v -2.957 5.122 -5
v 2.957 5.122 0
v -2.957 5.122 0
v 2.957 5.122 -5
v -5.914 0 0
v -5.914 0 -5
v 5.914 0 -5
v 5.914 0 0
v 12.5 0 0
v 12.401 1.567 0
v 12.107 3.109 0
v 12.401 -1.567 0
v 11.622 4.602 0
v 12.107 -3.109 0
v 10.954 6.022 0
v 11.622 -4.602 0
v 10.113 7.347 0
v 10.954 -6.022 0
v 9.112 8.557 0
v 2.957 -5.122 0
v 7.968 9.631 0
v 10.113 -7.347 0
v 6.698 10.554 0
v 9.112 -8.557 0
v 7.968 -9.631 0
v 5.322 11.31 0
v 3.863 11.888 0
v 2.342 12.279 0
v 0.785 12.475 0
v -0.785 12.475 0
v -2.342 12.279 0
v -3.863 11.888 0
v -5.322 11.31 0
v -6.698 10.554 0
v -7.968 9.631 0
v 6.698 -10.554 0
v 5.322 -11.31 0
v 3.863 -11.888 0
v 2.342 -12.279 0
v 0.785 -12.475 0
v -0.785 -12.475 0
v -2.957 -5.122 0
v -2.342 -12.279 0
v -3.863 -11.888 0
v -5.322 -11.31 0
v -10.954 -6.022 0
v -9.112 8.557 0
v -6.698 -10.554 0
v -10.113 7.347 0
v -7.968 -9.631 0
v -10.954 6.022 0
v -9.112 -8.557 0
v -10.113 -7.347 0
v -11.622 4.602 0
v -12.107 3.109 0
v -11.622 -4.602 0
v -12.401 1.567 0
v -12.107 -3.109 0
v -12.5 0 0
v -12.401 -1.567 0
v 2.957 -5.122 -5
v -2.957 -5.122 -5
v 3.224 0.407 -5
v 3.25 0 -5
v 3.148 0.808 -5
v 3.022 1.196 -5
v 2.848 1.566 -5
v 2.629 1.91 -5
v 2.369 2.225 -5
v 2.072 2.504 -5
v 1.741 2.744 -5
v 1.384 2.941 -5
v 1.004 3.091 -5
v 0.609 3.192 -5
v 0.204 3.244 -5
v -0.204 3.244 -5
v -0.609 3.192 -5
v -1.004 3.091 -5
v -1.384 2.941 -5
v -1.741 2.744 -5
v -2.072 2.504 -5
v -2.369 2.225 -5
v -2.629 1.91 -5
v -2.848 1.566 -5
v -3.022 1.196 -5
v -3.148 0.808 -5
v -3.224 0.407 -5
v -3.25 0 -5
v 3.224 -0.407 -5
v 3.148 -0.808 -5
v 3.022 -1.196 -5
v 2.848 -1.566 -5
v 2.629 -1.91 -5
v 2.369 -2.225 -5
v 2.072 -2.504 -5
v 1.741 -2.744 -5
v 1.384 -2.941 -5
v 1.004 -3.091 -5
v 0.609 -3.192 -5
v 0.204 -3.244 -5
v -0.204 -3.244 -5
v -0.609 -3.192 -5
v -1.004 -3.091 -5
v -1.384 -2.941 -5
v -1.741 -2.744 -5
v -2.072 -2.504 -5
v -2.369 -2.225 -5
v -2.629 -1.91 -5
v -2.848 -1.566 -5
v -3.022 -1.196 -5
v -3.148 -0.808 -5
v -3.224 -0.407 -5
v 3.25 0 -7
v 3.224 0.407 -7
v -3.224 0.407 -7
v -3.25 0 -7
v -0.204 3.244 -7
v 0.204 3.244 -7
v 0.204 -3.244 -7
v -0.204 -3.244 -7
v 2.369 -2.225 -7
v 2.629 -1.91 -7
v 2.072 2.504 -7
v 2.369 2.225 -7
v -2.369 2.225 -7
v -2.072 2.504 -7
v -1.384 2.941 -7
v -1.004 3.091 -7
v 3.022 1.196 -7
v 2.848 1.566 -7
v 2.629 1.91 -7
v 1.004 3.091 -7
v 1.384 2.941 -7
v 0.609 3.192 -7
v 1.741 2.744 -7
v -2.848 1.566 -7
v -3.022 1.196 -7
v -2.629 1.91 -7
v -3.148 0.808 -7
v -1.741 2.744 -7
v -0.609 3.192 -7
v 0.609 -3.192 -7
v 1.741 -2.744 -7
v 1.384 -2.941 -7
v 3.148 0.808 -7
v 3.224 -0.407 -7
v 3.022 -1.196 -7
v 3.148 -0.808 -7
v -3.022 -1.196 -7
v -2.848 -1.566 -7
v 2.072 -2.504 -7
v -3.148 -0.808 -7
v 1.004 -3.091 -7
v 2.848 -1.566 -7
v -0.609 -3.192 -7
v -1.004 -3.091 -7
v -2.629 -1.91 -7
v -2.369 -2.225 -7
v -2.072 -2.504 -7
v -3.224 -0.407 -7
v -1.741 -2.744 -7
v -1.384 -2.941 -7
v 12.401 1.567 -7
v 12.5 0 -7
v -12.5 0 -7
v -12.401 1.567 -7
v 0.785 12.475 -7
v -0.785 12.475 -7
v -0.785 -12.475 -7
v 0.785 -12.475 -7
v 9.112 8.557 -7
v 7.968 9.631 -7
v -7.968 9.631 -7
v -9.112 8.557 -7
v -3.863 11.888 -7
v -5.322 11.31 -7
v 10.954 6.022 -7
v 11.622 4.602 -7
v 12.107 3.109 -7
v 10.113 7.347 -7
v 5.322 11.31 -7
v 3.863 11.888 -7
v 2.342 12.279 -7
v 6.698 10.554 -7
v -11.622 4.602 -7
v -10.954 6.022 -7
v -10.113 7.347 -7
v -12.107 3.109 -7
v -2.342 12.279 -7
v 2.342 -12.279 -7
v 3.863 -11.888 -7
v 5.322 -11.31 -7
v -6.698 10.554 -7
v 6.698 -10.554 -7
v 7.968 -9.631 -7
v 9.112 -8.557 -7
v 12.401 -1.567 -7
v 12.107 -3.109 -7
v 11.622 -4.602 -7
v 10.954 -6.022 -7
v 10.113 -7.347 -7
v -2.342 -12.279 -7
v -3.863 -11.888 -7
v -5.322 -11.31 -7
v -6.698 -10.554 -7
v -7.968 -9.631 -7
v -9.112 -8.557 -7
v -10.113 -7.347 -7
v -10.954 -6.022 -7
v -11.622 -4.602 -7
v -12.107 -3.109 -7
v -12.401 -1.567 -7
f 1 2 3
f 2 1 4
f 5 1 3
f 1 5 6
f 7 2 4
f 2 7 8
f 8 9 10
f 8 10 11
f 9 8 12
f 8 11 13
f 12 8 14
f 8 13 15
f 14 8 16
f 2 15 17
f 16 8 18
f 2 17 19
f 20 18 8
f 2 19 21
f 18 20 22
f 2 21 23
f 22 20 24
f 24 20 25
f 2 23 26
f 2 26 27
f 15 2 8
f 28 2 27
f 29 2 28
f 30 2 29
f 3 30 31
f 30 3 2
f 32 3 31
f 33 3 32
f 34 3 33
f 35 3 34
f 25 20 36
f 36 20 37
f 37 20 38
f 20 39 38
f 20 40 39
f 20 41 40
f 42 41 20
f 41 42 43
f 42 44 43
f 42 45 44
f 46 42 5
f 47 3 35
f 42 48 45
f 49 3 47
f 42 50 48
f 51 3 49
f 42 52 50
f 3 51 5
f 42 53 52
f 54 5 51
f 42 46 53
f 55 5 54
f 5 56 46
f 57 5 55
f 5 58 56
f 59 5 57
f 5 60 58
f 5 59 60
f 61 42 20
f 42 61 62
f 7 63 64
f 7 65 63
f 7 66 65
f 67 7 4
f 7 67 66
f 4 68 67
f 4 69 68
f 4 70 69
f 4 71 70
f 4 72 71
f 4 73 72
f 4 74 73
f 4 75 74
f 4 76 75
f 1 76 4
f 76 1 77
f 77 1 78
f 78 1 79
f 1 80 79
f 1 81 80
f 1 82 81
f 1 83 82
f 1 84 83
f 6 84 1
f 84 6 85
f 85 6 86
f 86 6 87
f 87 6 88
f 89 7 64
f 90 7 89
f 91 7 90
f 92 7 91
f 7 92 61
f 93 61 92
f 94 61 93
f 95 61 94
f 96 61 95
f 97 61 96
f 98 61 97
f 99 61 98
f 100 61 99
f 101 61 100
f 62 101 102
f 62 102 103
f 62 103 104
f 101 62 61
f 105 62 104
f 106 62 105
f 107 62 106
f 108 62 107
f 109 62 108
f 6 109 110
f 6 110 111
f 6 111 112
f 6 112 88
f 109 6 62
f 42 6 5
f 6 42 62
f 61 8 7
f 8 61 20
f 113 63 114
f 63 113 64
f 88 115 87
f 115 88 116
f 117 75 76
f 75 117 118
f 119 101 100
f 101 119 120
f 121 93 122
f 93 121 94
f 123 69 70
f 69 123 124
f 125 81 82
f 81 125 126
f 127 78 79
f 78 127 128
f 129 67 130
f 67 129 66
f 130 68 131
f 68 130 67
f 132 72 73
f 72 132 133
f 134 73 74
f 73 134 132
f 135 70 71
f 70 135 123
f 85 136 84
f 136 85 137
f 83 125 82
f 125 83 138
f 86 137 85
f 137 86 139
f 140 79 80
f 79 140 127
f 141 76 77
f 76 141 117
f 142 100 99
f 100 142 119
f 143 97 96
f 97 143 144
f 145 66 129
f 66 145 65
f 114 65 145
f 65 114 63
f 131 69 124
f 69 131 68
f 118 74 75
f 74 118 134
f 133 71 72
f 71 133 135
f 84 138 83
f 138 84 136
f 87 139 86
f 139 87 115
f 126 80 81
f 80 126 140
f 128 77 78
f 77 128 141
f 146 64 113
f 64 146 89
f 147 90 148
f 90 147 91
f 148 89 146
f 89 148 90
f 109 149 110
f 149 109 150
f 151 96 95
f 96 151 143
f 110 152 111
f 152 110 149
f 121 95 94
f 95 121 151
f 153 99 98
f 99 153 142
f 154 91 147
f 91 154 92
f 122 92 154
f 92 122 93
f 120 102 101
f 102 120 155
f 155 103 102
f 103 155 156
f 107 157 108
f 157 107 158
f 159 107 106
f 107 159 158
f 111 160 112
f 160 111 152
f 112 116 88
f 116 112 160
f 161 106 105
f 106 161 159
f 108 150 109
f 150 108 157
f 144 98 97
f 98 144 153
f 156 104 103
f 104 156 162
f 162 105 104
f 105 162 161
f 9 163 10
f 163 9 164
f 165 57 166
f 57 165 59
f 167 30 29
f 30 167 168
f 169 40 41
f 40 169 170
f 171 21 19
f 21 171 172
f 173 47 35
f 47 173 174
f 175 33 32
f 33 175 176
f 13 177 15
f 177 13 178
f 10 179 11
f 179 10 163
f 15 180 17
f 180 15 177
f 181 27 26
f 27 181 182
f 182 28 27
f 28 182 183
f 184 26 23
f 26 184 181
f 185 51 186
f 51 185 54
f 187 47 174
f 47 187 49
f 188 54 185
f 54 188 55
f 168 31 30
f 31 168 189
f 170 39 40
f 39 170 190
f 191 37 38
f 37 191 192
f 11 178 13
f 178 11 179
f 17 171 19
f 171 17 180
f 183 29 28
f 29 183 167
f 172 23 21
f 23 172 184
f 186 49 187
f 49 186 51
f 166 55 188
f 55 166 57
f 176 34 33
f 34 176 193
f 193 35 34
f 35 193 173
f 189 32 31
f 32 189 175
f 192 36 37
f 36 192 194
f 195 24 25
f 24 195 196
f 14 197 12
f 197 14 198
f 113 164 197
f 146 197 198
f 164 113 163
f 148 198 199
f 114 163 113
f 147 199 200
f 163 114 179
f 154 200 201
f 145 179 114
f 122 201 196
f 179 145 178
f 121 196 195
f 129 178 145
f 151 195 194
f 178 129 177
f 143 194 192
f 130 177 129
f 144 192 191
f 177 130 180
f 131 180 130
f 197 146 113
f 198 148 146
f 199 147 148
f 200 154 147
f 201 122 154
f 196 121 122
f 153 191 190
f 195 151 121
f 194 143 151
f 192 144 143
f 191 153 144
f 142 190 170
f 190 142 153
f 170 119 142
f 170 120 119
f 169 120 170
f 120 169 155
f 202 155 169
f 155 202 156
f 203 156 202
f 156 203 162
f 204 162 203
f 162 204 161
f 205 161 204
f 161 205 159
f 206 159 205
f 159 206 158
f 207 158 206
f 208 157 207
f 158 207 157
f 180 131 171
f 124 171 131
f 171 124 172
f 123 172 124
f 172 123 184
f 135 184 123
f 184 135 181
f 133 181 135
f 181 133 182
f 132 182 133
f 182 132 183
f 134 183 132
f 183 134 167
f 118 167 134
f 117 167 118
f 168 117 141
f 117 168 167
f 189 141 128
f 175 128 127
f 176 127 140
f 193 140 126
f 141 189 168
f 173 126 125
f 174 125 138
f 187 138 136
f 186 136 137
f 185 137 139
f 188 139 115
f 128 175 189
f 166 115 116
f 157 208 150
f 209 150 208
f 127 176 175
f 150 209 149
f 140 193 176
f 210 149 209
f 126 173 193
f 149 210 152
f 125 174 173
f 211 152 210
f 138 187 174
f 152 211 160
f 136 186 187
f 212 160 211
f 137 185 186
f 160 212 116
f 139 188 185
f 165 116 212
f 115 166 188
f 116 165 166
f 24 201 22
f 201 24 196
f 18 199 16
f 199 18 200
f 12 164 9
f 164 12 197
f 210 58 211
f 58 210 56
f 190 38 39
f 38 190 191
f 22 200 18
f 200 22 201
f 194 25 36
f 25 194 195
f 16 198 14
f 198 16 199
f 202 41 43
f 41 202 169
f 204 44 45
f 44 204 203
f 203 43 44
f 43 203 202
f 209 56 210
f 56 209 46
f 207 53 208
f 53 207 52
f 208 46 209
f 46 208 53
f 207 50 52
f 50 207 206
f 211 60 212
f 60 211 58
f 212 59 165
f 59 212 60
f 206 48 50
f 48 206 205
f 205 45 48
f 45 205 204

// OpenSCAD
$fn = 50;

difference() {
	union() {
		translate(v = [0, 0, -7.0]) {
			cylinder(h = 7.0, r = 12.5);
		}
	}
	union() {
		translate(v = [0, 0, 0]) {
			rotate(a = [0, 0, 0]) {
				difference() {
					union() {
						translate(v = [0, 0, -5]) {
							linear_extrude(height = 5) {
								polygon(points = [[5.914249999999999, 0.0], [2.957125, 5.1218907443321156], [-2.9571249999999982, 5.1218907443321156], [-5.914249999999999, 7.242867331857232e-16], [-2.9571250000000022, -5.121890744332115], [2.9571249999999956, -5.121890744332118]]);
							}
						}
					}
					union();
				}
			}
		}
		#translate(v = [0, 0, -100.0]) {
			cylinder(h = 200, r = 3.25);
		}
	}
}
